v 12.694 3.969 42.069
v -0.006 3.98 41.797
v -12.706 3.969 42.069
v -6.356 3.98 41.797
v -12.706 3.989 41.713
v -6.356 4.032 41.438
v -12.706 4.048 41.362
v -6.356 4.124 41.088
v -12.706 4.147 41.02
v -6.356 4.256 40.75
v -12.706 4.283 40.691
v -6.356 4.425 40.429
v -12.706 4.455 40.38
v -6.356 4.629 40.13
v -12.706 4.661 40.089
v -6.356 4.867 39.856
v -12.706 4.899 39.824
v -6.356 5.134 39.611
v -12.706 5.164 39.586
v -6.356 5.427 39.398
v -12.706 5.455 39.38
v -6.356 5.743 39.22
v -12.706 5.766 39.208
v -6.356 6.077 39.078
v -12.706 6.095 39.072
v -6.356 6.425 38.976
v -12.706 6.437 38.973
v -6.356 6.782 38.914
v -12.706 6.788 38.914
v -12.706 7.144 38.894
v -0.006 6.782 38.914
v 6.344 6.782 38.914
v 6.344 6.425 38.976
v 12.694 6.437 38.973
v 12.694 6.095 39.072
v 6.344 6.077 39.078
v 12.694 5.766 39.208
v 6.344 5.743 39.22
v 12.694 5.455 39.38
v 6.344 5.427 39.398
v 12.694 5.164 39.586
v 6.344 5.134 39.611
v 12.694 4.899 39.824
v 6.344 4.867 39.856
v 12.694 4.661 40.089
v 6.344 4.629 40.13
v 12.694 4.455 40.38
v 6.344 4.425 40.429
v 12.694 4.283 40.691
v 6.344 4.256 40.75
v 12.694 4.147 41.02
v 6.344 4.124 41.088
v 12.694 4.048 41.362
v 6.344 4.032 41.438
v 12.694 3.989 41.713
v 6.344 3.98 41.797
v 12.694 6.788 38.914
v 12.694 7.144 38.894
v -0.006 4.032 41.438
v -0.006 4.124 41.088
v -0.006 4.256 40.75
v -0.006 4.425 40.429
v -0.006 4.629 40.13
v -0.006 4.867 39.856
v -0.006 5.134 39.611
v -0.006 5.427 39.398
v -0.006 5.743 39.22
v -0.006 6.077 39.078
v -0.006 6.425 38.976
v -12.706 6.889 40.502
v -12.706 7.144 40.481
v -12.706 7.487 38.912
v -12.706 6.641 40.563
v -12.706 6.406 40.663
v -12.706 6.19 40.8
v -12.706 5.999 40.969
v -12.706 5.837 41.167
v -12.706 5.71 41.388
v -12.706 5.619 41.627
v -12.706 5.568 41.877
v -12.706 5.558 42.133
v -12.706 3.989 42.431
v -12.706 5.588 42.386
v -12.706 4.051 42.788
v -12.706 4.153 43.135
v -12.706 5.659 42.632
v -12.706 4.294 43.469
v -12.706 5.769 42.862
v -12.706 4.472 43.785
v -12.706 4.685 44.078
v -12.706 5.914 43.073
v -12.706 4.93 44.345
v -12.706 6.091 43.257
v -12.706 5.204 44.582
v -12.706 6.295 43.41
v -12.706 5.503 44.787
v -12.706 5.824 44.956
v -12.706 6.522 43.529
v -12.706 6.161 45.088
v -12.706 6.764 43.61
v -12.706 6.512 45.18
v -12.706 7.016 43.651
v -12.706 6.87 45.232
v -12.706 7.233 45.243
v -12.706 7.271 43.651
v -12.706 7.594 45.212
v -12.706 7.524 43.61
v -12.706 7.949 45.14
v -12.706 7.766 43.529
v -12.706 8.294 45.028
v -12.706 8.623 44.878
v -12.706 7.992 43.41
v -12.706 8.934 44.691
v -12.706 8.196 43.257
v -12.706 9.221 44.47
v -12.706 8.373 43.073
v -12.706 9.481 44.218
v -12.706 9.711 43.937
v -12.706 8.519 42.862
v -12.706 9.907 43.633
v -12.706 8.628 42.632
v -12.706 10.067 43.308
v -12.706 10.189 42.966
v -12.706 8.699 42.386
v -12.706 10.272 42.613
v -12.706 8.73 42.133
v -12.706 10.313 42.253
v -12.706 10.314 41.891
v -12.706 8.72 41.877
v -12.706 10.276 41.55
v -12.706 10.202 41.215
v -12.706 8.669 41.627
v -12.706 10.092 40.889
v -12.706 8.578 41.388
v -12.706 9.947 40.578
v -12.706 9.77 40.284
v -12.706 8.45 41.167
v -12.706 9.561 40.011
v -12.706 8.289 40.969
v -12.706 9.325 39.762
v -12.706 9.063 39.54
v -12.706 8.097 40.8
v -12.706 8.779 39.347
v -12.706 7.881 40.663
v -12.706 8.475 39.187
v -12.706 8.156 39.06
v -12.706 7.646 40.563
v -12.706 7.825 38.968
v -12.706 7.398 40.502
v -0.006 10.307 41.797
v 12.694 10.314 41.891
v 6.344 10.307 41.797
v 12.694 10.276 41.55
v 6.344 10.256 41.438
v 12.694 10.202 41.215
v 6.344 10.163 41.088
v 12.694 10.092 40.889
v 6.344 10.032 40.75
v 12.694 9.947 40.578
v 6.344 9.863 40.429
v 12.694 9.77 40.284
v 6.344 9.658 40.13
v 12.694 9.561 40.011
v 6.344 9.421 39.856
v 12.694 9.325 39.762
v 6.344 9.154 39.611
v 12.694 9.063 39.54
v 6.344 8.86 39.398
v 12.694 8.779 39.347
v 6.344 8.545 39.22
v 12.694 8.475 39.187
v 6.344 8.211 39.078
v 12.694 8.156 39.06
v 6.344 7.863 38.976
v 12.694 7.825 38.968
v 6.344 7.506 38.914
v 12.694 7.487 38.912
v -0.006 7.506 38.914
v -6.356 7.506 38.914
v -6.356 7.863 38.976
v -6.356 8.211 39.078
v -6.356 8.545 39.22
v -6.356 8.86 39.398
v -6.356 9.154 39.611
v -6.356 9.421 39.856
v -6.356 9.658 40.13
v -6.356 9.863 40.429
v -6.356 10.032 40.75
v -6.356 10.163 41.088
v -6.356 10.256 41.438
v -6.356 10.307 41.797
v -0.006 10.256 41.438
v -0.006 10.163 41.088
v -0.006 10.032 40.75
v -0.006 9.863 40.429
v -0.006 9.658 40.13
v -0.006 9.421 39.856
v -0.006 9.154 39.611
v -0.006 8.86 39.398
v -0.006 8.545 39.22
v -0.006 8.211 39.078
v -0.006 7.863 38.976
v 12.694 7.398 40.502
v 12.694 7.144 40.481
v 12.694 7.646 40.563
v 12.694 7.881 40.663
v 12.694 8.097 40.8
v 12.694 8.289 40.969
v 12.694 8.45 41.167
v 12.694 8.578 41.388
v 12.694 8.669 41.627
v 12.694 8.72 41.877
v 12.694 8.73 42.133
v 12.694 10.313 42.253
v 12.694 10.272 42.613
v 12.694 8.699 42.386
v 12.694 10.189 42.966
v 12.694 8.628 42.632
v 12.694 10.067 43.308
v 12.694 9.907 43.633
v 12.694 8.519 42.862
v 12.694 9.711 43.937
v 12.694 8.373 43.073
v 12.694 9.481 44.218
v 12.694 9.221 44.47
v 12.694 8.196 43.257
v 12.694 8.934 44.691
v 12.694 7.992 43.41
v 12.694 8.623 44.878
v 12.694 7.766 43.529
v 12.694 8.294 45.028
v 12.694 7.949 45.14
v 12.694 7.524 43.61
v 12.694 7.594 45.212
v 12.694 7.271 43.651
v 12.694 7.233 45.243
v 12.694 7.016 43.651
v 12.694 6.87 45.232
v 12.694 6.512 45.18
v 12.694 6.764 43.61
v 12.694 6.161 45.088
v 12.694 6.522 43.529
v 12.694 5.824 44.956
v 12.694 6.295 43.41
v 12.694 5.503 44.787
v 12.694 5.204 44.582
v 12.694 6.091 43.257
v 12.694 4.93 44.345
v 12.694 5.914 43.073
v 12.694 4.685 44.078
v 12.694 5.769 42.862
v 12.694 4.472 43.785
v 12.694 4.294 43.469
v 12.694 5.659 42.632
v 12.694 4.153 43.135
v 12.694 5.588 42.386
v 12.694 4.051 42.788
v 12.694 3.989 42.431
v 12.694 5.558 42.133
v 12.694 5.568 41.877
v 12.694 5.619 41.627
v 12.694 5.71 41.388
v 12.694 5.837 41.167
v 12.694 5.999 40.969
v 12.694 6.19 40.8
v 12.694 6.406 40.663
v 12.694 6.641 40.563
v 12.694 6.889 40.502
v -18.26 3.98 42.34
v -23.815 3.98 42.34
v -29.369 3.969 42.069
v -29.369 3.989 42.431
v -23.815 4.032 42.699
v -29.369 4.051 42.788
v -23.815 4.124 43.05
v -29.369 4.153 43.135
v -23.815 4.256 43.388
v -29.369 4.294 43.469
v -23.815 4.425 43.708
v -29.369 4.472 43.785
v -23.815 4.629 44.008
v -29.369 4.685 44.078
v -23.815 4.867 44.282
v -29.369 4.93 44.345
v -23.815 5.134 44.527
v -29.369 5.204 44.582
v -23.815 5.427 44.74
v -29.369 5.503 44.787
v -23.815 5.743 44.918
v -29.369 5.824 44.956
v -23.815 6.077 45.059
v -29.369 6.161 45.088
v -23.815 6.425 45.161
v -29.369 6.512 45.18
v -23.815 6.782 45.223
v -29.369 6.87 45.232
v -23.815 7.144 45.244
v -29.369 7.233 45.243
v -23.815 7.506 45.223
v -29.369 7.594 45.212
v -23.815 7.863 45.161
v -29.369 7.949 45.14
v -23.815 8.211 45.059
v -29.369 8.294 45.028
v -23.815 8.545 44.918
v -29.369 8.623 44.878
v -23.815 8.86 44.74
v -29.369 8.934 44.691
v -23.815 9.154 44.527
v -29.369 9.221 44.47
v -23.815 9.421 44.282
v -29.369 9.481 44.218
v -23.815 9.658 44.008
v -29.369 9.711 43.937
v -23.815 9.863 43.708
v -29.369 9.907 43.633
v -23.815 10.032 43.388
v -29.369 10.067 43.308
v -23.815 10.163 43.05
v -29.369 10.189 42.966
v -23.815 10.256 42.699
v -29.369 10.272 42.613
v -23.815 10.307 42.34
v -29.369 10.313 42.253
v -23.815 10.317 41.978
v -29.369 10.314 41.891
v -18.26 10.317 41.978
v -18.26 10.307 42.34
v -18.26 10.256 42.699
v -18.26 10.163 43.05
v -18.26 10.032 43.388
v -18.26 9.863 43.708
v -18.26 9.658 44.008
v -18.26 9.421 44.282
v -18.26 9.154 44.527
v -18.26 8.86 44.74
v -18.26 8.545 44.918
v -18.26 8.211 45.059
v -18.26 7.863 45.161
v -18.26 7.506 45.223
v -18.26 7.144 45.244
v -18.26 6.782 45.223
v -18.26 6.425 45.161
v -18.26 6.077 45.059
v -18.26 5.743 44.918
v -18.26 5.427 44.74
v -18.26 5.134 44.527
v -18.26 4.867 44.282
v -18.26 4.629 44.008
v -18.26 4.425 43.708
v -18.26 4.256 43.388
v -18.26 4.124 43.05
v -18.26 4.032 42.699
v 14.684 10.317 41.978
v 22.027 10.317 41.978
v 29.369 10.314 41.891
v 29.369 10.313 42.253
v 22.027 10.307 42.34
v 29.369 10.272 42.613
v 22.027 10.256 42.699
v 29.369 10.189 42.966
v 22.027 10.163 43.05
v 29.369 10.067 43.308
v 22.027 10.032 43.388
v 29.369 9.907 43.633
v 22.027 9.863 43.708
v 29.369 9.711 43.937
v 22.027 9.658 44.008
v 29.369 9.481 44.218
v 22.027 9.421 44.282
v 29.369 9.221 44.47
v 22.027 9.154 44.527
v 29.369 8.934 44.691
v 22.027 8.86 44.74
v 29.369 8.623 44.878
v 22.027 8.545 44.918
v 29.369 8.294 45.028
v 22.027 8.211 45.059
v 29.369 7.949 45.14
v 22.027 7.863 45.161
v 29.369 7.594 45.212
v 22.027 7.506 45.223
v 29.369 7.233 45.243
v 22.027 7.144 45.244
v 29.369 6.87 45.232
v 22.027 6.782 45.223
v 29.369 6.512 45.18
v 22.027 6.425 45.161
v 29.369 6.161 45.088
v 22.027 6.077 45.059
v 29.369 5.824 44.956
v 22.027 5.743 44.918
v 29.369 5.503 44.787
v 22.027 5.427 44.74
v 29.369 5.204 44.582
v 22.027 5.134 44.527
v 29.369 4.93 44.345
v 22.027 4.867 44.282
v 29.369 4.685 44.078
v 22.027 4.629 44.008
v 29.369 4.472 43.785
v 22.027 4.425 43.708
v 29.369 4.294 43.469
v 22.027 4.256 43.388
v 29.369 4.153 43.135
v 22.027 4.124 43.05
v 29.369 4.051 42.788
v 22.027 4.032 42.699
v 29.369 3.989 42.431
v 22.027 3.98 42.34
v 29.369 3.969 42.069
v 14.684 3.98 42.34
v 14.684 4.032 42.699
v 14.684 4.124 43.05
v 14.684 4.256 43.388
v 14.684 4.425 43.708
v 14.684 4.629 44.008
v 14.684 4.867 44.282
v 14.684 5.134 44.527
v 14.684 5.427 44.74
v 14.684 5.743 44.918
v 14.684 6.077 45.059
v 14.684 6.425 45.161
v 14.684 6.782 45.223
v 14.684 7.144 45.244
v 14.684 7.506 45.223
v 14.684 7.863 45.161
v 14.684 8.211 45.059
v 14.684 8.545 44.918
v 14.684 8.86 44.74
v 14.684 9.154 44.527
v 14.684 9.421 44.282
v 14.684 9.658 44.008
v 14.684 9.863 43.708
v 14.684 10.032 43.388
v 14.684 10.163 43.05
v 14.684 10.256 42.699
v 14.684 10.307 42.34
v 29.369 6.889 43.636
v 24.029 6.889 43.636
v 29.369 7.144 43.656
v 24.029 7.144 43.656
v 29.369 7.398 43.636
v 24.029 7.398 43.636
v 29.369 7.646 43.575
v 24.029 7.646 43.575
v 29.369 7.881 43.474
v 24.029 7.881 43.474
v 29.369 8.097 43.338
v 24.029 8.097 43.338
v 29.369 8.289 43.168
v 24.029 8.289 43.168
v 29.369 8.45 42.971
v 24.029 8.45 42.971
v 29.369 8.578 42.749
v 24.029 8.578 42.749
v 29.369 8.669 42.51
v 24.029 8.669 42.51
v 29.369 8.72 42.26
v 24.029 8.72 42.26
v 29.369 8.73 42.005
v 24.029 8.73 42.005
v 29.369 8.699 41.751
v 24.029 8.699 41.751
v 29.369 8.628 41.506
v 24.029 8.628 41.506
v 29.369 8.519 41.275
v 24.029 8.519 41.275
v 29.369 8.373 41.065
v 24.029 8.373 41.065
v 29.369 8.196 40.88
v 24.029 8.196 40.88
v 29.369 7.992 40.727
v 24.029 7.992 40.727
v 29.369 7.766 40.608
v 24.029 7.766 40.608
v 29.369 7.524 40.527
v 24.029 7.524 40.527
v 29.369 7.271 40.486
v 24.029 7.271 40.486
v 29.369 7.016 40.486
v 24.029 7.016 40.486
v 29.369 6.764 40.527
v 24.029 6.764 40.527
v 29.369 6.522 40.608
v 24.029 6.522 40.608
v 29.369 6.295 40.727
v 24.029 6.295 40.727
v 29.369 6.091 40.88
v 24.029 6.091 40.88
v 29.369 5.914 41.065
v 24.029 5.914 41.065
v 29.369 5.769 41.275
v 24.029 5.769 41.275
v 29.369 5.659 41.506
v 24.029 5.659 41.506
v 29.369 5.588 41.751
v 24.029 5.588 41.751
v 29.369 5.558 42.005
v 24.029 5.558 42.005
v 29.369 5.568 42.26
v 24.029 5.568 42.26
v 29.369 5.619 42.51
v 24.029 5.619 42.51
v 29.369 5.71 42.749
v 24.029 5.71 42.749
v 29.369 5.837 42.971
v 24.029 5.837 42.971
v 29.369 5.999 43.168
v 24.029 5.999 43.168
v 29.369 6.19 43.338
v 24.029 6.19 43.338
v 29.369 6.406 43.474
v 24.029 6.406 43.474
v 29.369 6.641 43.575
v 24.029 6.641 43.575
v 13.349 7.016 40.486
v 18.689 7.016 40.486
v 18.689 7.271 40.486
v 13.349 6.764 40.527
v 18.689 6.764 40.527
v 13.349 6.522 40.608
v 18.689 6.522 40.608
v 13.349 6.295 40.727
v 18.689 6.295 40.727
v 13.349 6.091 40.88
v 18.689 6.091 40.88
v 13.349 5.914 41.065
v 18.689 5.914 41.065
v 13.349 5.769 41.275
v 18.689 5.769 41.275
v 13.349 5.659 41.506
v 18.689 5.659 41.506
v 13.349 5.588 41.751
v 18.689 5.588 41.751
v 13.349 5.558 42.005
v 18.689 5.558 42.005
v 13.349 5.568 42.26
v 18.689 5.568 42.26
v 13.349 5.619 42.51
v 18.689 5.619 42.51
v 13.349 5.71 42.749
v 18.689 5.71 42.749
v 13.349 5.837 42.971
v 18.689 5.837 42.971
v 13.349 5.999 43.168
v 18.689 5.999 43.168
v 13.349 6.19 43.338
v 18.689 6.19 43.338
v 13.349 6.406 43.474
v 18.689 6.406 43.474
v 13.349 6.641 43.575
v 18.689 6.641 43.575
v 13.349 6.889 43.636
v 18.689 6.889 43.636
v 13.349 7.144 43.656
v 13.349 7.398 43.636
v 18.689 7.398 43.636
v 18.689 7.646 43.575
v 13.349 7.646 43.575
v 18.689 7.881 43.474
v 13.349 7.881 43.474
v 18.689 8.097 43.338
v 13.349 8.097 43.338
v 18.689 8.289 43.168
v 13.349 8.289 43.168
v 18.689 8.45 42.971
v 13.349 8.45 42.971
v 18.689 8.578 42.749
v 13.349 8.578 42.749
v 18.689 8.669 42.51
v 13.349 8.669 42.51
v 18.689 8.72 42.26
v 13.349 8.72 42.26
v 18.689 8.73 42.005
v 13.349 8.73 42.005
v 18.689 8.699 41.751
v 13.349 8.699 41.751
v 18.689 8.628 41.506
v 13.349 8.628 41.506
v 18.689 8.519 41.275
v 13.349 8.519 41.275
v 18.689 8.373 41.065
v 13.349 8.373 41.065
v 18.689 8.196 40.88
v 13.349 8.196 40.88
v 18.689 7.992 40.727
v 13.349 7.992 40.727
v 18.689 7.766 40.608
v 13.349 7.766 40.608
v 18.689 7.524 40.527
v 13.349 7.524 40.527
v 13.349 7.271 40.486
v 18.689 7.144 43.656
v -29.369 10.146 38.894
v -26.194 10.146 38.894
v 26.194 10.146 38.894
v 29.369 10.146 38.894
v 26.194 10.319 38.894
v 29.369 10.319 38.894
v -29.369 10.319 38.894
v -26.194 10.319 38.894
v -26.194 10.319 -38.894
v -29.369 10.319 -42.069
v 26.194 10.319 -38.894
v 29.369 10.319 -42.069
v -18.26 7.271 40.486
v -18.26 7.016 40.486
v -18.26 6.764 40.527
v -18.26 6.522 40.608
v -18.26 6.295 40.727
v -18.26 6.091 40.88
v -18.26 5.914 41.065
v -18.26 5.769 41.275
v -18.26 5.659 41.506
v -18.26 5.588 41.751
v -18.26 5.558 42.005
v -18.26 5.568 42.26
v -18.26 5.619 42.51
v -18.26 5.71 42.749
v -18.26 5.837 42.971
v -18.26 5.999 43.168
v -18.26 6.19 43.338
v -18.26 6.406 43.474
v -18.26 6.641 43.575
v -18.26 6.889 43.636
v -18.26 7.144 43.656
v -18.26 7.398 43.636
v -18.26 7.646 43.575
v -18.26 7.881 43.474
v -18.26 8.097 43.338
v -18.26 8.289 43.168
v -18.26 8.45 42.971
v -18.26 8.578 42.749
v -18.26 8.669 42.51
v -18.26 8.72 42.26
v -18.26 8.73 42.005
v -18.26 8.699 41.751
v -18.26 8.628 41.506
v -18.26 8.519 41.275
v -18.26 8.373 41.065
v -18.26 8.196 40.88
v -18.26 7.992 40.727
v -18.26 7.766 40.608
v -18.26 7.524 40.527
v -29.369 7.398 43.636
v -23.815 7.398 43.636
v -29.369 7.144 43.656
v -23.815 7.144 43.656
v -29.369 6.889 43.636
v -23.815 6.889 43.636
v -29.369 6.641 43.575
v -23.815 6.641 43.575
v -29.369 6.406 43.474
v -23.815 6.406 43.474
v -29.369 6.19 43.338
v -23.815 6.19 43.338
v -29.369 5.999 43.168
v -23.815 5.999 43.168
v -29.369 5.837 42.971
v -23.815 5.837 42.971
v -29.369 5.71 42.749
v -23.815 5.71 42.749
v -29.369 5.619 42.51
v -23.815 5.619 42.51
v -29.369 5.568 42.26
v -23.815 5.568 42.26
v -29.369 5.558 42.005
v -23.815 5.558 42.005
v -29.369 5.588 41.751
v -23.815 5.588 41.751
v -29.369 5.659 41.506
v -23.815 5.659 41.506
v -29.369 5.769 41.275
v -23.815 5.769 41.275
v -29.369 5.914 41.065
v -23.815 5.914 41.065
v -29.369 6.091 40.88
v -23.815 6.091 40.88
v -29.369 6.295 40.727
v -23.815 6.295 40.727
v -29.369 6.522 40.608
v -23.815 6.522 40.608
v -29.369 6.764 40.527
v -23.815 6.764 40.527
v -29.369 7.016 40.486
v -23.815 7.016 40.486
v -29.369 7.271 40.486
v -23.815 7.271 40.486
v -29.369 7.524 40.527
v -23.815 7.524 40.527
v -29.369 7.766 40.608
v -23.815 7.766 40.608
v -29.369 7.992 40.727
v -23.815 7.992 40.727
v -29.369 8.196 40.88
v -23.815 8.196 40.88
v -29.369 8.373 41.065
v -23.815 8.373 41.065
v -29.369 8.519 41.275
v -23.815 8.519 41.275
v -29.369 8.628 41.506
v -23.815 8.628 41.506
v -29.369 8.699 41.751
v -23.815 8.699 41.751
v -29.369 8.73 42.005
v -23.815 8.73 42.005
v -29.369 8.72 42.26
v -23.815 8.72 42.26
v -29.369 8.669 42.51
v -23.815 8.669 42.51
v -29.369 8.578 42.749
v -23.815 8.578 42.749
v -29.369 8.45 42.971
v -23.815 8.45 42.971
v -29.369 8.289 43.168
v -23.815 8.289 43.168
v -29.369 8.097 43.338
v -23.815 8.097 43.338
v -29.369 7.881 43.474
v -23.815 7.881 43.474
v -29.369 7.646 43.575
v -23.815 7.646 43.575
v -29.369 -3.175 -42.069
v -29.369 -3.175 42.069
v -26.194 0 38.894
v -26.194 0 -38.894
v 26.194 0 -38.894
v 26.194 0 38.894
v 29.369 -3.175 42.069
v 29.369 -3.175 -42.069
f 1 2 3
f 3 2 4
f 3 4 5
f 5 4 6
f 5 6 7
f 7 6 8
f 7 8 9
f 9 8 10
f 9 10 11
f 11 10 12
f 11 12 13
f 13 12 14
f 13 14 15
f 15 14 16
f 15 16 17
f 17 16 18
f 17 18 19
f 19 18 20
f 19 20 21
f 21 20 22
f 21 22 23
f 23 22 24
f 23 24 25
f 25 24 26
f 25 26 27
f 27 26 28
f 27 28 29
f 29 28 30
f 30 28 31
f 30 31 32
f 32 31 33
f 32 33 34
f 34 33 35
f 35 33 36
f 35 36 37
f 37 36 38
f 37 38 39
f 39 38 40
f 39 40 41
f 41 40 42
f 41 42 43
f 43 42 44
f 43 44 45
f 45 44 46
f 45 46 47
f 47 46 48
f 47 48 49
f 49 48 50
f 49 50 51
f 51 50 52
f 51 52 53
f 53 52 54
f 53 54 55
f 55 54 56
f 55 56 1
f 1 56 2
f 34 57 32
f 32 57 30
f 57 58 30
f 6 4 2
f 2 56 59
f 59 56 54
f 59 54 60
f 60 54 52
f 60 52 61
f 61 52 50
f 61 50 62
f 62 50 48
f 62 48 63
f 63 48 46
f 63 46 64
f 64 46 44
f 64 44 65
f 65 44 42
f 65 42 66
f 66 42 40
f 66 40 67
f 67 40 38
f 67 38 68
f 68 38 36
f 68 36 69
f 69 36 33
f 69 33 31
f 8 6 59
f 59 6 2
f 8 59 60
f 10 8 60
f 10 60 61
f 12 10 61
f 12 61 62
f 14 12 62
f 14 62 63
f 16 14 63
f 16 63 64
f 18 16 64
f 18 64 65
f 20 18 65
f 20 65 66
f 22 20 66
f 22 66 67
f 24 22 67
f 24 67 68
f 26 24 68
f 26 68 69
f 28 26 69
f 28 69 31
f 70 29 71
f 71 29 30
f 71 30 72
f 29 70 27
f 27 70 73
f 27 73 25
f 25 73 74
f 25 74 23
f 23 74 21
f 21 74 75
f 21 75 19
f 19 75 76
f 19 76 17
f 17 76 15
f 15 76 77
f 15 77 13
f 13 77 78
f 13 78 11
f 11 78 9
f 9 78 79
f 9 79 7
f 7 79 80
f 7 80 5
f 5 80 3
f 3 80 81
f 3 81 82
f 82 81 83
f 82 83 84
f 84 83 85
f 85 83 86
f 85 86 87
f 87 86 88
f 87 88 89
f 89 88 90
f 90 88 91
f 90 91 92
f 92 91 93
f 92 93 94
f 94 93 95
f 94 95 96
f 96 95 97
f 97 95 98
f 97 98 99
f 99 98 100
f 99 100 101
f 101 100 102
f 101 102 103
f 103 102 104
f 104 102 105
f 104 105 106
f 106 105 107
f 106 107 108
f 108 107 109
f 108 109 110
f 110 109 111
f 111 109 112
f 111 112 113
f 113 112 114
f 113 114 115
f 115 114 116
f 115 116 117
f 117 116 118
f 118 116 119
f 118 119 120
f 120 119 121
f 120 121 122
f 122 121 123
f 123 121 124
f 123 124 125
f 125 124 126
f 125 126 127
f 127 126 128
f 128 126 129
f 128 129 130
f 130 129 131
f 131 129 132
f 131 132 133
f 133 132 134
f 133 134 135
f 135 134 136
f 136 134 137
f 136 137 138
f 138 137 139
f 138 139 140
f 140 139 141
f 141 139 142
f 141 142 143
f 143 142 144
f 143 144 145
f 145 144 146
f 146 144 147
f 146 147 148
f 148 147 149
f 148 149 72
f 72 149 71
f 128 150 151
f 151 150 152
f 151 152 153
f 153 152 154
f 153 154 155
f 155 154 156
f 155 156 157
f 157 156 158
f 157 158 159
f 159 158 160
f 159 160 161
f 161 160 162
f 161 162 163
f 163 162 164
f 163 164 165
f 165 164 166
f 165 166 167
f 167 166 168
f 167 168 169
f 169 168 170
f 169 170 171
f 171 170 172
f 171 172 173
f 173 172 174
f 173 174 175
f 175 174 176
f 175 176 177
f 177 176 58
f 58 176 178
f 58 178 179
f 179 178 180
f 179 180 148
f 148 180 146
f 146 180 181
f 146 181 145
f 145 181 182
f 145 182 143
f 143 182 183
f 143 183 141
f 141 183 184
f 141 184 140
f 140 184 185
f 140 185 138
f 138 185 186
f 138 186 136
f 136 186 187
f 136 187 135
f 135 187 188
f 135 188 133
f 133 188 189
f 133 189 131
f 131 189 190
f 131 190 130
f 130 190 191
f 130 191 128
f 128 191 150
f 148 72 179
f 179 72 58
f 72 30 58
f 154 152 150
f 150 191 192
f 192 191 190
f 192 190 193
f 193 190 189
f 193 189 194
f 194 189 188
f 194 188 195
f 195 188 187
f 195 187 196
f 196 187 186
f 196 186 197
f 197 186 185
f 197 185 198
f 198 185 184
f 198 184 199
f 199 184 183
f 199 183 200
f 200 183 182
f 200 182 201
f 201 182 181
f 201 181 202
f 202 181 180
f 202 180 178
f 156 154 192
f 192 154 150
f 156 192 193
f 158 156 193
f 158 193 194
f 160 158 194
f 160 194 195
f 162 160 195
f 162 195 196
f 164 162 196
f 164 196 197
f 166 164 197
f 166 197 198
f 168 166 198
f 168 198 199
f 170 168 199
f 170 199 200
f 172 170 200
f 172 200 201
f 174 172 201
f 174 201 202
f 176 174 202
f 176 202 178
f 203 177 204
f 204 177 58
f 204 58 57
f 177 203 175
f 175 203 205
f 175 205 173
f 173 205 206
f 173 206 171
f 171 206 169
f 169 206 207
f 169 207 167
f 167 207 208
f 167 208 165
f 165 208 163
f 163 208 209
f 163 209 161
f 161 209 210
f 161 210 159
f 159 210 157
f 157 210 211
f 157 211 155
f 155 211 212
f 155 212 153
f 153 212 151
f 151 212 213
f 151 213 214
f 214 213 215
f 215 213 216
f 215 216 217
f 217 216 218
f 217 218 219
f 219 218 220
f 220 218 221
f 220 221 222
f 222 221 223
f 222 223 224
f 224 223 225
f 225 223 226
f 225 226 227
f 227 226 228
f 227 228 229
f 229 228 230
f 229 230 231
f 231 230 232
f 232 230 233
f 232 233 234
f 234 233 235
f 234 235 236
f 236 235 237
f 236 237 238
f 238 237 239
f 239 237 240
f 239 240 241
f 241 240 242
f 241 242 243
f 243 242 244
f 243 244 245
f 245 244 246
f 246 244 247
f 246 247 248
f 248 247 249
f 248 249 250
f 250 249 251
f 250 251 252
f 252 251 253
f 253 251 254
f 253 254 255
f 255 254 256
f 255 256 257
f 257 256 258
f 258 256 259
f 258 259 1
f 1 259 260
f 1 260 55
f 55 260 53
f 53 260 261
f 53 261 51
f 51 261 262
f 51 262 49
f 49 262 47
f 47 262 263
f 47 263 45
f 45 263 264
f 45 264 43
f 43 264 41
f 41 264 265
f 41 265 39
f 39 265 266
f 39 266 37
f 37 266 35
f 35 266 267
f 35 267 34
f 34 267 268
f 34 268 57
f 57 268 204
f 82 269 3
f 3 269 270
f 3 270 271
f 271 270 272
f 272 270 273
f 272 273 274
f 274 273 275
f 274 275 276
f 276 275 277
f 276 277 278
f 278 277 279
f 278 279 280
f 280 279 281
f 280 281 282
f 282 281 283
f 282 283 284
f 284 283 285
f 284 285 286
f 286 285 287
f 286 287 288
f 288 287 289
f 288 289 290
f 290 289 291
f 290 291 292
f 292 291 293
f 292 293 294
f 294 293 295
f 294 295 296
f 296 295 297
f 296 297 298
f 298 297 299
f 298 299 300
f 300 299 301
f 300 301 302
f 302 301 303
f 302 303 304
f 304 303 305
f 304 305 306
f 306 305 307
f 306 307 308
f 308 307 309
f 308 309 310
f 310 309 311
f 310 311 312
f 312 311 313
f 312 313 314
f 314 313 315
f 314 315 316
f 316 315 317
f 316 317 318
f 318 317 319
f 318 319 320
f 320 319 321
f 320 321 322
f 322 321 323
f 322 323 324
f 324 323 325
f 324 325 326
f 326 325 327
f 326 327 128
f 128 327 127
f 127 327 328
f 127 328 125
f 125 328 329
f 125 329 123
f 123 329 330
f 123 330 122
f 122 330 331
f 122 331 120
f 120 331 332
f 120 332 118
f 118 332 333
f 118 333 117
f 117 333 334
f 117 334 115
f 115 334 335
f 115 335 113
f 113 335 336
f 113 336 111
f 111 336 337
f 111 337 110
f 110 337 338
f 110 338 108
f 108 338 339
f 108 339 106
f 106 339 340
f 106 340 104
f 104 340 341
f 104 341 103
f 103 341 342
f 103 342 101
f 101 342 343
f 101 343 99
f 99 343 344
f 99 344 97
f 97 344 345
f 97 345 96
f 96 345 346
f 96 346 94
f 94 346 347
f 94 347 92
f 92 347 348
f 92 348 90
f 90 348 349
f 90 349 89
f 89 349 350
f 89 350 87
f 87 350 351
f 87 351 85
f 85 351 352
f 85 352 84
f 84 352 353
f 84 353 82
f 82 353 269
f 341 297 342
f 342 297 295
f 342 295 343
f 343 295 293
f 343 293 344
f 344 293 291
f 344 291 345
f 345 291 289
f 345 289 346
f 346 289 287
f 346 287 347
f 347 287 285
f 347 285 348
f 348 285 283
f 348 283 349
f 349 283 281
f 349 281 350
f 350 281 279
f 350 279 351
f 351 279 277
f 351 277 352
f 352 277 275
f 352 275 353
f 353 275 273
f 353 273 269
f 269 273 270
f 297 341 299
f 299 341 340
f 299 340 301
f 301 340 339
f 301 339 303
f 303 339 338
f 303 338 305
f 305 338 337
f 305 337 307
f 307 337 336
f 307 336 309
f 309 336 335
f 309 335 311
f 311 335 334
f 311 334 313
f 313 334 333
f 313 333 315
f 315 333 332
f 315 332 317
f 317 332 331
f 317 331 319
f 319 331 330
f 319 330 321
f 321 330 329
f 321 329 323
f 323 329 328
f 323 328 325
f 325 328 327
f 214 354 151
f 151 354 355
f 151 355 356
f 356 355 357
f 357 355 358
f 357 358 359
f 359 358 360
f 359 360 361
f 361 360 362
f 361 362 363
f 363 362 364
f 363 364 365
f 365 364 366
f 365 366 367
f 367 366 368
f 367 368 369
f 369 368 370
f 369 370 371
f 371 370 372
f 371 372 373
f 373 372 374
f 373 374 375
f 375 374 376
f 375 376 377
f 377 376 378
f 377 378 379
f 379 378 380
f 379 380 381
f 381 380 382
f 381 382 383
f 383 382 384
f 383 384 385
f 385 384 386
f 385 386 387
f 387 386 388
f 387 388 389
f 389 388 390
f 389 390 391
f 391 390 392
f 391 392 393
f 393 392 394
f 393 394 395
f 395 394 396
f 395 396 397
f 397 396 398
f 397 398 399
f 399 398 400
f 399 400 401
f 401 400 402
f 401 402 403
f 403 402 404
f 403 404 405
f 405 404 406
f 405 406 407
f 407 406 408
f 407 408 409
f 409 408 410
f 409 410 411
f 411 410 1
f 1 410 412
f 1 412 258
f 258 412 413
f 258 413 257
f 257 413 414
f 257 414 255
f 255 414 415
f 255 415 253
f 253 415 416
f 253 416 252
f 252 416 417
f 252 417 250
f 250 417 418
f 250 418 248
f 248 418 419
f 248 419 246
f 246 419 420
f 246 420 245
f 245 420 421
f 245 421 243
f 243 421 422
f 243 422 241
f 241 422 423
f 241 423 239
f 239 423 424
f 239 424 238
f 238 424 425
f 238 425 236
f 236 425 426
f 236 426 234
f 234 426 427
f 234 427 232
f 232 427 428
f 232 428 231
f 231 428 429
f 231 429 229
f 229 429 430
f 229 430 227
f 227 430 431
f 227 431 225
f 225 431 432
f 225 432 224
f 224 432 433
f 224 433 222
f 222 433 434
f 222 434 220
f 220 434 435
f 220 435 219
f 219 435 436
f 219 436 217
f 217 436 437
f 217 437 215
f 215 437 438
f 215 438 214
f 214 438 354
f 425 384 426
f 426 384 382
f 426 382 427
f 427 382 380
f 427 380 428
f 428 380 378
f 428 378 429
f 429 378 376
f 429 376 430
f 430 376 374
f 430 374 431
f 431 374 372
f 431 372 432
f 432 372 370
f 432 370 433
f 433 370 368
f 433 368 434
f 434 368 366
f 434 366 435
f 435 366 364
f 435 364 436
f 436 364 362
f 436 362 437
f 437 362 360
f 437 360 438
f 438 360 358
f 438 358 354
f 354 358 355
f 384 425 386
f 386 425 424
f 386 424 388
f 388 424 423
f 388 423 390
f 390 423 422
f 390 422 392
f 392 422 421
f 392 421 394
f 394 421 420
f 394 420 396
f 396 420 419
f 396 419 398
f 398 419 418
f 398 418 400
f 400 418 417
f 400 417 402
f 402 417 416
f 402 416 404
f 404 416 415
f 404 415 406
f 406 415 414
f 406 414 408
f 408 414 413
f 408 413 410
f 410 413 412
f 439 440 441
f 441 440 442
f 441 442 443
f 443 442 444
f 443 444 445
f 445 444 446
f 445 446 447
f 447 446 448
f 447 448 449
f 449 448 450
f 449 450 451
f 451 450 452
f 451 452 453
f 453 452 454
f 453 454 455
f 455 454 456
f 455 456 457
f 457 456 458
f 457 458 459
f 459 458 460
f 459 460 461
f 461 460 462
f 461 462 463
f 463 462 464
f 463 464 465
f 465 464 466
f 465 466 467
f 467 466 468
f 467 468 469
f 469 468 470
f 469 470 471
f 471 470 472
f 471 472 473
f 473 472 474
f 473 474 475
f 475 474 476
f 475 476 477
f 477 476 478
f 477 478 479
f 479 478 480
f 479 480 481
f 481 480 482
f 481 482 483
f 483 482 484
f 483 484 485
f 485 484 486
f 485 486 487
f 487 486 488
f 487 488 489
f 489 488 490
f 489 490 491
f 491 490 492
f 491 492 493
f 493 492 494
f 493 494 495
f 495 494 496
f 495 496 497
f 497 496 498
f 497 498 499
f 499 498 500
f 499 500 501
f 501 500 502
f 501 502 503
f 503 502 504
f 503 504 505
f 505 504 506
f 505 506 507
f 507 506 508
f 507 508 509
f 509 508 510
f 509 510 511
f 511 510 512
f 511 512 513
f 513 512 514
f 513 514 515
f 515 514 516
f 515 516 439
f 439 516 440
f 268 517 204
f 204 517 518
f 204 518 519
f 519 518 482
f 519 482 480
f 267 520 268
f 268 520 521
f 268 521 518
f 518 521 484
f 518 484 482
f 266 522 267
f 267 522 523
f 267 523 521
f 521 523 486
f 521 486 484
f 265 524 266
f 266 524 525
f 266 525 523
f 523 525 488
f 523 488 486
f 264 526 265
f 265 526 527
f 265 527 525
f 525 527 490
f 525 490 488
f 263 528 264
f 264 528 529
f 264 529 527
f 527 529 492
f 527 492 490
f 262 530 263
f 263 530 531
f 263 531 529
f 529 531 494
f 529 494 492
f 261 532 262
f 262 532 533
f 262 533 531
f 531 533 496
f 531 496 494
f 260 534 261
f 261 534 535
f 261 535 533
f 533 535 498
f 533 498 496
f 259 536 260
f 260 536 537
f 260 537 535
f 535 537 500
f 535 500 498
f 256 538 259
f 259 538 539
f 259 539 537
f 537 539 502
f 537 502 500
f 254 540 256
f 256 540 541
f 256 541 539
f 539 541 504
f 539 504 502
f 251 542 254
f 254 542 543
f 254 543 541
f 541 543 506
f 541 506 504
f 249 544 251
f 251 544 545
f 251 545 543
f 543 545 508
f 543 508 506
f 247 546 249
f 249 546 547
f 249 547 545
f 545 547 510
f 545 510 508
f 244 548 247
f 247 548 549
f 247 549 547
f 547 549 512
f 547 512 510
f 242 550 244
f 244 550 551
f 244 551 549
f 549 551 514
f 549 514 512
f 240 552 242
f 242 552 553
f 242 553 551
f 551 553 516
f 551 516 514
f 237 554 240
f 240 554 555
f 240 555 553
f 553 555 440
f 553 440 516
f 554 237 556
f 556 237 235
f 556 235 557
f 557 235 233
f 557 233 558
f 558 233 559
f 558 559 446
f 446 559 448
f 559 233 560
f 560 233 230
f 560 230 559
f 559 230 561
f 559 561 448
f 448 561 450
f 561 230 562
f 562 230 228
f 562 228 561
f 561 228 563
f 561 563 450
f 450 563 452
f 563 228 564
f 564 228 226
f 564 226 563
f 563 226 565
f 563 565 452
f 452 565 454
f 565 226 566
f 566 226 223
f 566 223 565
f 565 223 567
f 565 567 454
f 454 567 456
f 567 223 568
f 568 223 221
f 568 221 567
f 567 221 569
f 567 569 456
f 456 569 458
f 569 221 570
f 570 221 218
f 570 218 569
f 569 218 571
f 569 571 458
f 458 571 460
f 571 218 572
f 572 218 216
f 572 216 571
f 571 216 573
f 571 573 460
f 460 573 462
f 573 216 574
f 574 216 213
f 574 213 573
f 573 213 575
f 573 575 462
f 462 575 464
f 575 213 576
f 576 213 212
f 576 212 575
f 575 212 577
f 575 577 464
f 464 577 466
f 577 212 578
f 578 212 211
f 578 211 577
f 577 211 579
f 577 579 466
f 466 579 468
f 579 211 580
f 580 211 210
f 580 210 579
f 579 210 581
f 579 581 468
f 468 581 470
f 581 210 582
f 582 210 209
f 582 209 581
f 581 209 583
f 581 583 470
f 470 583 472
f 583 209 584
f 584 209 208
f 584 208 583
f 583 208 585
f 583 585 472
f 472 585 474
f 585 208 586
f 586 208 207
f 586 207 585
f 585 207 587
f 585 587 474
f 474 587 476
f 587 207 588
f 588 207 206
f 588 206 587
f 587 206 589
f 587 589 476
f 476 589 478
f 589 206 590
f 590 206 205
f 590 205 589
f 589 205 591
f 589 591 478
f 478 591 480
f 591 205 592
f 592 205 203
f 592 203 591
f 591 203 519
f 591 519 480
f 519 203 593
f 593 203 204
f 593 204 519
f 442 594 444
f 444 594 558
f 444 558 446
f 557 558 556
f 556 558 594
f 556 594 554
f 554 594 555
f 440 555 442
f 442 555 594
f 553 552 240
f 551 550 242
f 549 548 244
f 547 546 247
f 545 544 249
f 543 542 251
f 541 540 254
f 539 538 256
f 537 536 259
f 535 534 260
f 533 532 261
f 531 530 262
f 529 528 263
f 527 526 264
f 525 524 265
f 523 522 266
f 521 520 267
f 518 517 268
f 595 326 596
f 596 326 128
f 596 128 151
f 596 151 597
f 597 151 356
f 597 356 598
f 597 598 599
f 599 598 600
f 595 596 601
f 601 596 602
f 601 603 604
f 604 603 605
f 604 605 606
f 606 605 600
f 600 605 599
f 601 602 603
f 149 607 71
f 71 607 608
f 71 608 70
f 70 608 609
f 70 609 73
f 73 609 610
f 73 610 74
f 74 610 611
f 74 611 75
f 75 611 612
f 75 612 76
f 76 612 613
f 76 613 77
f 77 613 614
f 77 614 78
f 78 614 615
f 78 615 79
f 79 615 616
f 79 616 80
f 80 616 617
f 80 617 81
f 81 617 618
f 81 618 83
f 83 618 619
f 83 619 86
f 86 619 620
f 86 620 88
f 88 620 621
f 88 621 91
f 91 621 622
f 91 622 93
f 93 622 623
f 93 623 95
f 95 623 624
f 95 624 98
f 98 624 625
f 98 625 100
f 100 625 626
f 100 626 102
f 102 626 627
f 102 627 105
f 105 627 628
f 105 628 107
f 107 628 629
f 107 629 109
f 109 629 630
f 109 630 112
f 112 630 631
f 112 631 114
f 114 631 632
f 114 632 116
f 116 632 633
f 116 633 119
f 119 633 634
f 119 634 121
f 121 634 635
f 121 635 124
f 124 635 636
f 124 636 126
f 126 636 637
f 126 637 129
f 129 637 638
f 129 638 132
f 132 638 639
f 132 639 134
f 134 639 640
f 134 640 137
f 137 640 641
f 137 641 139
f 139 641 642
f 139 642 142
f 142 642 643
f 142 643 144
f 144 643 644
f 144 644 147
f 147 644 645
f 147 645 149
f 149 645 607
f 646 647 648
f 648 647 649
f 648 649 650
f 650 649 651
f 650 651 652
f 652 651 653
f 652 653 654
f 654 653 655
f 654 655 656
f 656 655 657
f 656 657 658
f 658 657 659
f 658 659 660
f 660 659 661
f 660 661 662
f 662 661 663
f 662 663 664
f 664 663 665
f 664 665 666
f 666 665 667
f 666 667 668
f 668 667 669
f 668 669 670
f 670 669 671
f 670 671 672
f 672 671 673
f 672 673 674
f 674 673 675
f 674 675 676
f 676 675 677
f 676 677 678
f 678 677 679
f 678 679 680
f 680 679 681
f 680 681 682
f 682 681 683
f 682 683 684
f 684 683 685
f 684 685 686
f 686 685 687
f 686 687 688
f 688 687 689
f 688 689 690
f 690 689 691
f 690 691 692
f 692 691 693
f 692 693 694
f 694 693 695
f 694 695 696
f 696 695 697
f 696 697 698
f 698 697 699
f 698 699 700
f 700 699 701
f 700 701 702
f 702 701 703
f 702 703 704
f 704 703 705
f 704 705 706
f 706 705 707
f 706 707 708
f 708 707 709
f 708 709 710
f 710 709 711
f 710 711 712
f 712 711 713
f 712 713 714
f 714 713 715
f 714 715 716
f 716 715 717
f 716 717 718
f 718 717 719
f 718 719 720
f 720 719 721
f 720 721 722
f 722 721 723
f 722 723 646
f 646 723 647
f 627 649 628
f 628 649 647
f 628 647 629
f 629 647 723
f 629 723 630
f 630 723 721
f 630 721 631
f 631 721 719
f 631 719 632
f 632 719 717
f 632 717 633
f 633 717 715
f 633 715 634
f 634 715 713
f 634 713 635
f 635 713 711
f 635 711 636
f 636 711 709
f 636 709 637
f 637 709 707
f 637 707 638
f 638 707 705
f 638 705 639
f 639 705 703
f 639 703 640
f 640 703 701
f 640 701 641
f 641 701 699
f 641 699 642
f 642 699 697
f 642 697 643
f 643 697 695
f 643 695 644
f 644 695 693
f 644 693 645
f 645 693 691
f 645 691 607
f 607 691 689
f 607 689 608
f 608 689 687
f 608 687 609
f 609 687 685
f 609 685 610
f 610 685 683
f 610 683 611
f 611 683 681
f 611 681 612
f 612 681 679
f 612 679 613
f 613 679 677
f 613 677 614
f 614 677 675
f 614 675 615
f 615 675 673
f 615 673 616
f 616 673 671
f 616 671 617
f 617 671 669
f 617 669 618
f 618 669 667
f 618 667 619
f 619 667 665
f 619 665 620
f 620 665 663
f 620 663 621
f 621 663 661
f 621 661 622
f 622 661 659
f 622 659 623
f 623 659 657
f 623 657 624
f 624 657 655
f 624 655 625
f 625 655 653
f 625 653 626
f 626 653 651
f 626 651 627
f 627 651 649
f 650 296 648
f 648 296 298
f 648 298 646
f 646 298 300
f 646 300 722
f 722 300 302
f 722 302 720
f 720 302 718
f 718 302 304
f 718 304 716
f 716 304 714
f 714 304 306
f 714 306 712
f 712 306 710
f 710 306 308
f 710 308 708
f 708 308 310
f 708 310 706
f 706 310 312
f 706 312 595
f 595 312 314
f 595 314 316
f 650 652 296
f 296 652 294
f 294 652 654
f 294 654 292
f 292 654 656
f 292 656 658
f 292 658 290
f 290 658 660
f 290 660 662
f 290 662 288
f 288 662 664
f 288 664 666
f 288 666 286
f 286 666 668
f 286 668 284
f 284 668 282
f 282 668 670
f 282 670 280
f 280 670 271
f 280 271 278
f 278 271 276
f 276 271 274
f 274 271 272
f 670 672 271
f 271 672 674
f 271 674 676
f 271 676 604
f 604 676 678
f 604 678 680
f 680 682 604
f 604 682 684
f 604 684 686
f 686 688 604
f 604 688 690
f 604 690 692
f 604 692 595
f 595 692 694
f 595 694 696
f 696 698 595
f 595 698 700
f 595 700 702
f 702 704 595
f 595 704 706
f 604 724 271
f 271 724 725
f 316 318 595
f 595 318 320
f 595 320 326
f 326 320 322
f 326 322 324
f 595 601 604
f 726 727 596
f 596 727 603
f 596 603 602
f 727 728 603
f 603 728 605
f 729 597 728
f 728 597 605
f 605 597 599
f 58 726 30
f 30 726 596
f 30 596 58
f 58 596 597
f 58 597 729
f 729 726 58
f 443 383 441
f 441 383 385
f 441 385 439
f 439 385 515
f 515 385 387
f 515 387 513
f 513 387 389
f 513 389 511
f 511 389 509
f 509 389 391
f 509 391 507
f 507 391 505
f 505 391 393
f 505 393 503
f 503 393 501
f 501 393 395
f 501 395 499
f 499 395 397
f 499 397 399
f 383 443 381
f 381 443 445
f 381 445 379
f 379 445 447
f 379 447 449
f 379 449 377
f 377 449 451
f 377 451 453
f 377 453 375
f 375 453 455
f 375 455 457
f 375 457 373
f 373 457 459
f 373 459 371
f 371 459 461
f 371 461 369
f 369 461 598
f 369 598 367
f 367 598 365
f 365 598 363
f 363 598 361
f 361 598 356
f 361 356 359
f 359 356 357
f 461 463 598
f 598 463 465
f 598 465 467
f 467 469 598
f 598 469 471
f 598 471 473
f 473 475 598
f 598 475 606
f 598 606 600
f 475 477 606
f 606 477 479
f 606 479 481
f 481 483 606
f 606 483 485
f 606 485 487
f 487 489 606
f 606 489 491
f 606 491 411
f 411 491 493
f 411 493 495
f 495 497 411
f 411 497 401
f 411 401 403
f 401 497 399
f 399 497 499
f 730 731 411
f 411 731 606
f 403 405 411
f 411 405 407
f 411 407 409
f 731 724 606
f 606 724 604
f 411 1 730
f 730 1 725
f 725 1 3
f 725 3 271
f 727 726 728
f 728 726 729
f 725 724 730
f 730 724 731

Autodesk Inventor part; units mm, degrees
ref_plane "YZ Plane" through (0, 0, 0) normal (1, 0, 0) x (0, 1, 0)
ref_plane "XZ Plane" through (0, 0, 0) normal (0, 1, 0) x (-1, 0, 0)
ref_plane "XY Plane" through (0, 0, 0) normal (0, 0, 1) x (1, 0, 0)
sketch "Sketch2" plane through (0, 0, 0) normal (0, 1, 0) x (-1, 0, 0)
  line L0 (29.3687, 42.0688) -> (-29.3688, 42.0688)
  line L1 (-29.3688, 42.0688) -> (-29.3687, -42.0688)
  line L2 (-29.3687, -42.0688) -> (29.3688, -42.0688)
  line L3 (29.3688, -42.0688) -> (29.3687, 42.0688)
  line L4 (29.3687, 42.0688) -> (-29.3687, -42.0688) construction
  line L5 (-29.3688, 42.0688) -> (29.3688, -42.0688) construction
  point P0 (0, 0)
  dimension "d4" = 58.7375
  dimension "d5" = 84.1375
extrude "Extrusion1" add sketch "Sketch2" against normal blind 3.175
sketch "Sketch3" plane through (0, 0, 0) normal (0, 1, 0) x (1, 0, 0)
  line L0 (29.3688, -42.0688) -> (-29.3687, -42.0688) projected
  line L1 (-29.3688, 42.0688) -> (29.3687, 42.0688) projected
  line L2 (-29.3687, -42.0688) -> (29.3687, -42.0688)
  line L3 (29.3687, -42.0688) -> (29.3687, 42.0688)
  line L4 (29.3687, 42.0688) -> (-29.3687, 42.0688)
  line L5 (-29.3687, 42.0688) -> (-29.3687, -42.0688)
  line L6 (-26.1938, -38.8937) -> (26.1937, -38.8937)
  line L7 (26.1937, -38.8937) -> (26.1937, 38.8937)
  line L8 (26.1937, 38.8937) -> (-26.1938, 38.8937)
  line L9 (-26.1938, 38.8937) -> (-26.1938, -38.8937)
  line L10 (-26.1938, -38.8937) -> (26.1937, 38.8937) construction
  line L11 (26.1937, -38.8937) -> (-26.1938, 38.8937) construction
  point P0 (0, 0)
  dimension "d8" = 3.175
  dimension "d9" = 3.175
extrude "Extrusion2" add sketch "Sketch3" along normal blind 7.1437
sketch "Sketch6" plane through (-29.3688, -3.175, -42.0688) normal (-1, 0, 0) x (0, 0, 1)
  line L0 (0, 10.3187) -> (84.1375, 10.3187) projected
  line L1 (84.1375, 10.3187) -> (84.1375, 0) projected
  circle A0 centre (84.1375, 10.3187) radius 3.175
  point P0 (42.0688, 3.175)
  dimension "d16" = 6.35
extrude "Extrusion5" add sketch "Sketch6" against normal blind 58.7375
sketch "Sketch8" plane through (-29.3688, -3.175, -42.0688) normal (-1, 0, 0) x (0, 0, 1)
  arc A0 (84.1375, 7.1437) -> (80.9625, 10.3187) centre (84.1375, 10.3187) ccw projected
  circle A1 centre (84.1375, 10.3187) radius 1.5875
  point P0 (42.0688, 3.175)
  dimension "d21" = 3.175
extrude "Extrusion6" cut sketch "Sketch8" against normal blind 58.7375
sketch "Sketch11" plane through (0, 7.1437, 0) normal (0, 1, 0) x (1, 0, 0)
  line L0 (-29.3688, 42.0688) -> (29.3687, 42.0688) projected
  line L1 (-29.3688, 42.0688) -> (29.3687, 42.0688)
  line L2 (29.3687, 42.0688) -> (29.3688, -38.7648)
  line L3 (29.3687, 42.0688) -> (29.3688, -42.0688) projected
  line L4 (26.1937, -38.8937) -> (29.3688, -38.8937) projected
  line L5 (26.1937, 38.8937) -> (26.1937, -38.8937) projected
  line L6 (26.1937, -38.8937) -> (26.1937, 38.8937)
  line L7 (26.1937, 38.8937) -> (-26.1938, 38.8937)
  line L8 (-29.3687, -38.8938) -> (-26.1938, -38.8937) projected
  line L9 (-26.1938, 38.8937) -> (-26.1938, -38.8937)
  line L10 (-26.1938, -38.8937) -> (-29.3687, -38.8938)
  line L11 (-29.3688, 42.0688) -> (-29.3687, -38.8938) projected
  line L12 (-29.3687, -38.8938) -> (-29.3688, 42.0688)
  point P0 (0, 0)
extrude "Extrusion9" add sketch "Sketch11" along normal blind 3.175
sketch "Sketch12" plane through (-29.3688, -3.175, -42.0688) normal (-1, 0, 0) x (0, 0, 1)
  line L0 (80.9625, 3.175) -> (80.9625, 10.3187) projected
  line L1 (80.9625, 10.3187) -> (80.9625, 13.3208)
  arc A0 (84.1375, 7.1437) -> (80.9625, 10.3187) centre (84.1375, 10.3187) ccw projected
  line L2 (80.9625, 13.3208) -> (83.9598, 13.4888)
  point P0 (42.0688, 3.175)
extrude "Extrusion10" add sketch "Sketch12" against normal blind 58.7375
ref_plane "Work Plane1" through (-0.0063, -3.175, 42.0688) normal (1, 0, 0) x (0, 0, -1)
sketch "Sketch13" plane through (-0.0063, -3.175, 42.0688) normal (1, 0, 0) x (0, 0, -1)
  circle A0 centre (0, 10.3187) radius 1.5875 projected
  circle A1 centre (0, 10.3187) radius 3.175
  point P0 (42.0688, 3.175)
  dimension "d33" = 6.35
extrude "Extrusion11" cut sketch "Sketch13" along normal mid plane 25.4
equation "\"d4\" = 2 * materialWallThickness + cardDeckWidth + cardDeckAirGap"
equation "\"d5\" = 2 * materialWallThickness + cardDeckLength + cardDeckAirGap"
equation "\"d6\" = baseWallThickness"
equation "\"d8\" = baseWallThickness"
equation "\"d9\" = baseWallThickness"
equation "\"d10\" = 0.5 * cardDeckDepth"
equation "\"d19\" = d4"
equation "\"d22\" = d4"
equation "\"d30\" = d4"
equation "\"cardDeckWidth\" = 50.8"
equation "\"cardDeckLength\" = 76.2"
equation "\"d0\" = cardDeckWidth"
equation "\"d1\" = cardDeckLength"
equation "\"cardDeckDepth\" = 14.2875"
equation "\"d2\" = cardDeckDepth"
equation "\"d3\" = 0"
equation "\"materialWallThickness\" = 3.175"
equation "\"baseWallThickness\" = 3.175"
equation "\"cardDeckAirGap\" = 1.5875"
equation "\"hingeOuterDiam\" = 12.7"
equation "\"hingeInnerDiam\" = 6.35"
properties part number "TopHalfOfBoard" material "ABS Plastic"
